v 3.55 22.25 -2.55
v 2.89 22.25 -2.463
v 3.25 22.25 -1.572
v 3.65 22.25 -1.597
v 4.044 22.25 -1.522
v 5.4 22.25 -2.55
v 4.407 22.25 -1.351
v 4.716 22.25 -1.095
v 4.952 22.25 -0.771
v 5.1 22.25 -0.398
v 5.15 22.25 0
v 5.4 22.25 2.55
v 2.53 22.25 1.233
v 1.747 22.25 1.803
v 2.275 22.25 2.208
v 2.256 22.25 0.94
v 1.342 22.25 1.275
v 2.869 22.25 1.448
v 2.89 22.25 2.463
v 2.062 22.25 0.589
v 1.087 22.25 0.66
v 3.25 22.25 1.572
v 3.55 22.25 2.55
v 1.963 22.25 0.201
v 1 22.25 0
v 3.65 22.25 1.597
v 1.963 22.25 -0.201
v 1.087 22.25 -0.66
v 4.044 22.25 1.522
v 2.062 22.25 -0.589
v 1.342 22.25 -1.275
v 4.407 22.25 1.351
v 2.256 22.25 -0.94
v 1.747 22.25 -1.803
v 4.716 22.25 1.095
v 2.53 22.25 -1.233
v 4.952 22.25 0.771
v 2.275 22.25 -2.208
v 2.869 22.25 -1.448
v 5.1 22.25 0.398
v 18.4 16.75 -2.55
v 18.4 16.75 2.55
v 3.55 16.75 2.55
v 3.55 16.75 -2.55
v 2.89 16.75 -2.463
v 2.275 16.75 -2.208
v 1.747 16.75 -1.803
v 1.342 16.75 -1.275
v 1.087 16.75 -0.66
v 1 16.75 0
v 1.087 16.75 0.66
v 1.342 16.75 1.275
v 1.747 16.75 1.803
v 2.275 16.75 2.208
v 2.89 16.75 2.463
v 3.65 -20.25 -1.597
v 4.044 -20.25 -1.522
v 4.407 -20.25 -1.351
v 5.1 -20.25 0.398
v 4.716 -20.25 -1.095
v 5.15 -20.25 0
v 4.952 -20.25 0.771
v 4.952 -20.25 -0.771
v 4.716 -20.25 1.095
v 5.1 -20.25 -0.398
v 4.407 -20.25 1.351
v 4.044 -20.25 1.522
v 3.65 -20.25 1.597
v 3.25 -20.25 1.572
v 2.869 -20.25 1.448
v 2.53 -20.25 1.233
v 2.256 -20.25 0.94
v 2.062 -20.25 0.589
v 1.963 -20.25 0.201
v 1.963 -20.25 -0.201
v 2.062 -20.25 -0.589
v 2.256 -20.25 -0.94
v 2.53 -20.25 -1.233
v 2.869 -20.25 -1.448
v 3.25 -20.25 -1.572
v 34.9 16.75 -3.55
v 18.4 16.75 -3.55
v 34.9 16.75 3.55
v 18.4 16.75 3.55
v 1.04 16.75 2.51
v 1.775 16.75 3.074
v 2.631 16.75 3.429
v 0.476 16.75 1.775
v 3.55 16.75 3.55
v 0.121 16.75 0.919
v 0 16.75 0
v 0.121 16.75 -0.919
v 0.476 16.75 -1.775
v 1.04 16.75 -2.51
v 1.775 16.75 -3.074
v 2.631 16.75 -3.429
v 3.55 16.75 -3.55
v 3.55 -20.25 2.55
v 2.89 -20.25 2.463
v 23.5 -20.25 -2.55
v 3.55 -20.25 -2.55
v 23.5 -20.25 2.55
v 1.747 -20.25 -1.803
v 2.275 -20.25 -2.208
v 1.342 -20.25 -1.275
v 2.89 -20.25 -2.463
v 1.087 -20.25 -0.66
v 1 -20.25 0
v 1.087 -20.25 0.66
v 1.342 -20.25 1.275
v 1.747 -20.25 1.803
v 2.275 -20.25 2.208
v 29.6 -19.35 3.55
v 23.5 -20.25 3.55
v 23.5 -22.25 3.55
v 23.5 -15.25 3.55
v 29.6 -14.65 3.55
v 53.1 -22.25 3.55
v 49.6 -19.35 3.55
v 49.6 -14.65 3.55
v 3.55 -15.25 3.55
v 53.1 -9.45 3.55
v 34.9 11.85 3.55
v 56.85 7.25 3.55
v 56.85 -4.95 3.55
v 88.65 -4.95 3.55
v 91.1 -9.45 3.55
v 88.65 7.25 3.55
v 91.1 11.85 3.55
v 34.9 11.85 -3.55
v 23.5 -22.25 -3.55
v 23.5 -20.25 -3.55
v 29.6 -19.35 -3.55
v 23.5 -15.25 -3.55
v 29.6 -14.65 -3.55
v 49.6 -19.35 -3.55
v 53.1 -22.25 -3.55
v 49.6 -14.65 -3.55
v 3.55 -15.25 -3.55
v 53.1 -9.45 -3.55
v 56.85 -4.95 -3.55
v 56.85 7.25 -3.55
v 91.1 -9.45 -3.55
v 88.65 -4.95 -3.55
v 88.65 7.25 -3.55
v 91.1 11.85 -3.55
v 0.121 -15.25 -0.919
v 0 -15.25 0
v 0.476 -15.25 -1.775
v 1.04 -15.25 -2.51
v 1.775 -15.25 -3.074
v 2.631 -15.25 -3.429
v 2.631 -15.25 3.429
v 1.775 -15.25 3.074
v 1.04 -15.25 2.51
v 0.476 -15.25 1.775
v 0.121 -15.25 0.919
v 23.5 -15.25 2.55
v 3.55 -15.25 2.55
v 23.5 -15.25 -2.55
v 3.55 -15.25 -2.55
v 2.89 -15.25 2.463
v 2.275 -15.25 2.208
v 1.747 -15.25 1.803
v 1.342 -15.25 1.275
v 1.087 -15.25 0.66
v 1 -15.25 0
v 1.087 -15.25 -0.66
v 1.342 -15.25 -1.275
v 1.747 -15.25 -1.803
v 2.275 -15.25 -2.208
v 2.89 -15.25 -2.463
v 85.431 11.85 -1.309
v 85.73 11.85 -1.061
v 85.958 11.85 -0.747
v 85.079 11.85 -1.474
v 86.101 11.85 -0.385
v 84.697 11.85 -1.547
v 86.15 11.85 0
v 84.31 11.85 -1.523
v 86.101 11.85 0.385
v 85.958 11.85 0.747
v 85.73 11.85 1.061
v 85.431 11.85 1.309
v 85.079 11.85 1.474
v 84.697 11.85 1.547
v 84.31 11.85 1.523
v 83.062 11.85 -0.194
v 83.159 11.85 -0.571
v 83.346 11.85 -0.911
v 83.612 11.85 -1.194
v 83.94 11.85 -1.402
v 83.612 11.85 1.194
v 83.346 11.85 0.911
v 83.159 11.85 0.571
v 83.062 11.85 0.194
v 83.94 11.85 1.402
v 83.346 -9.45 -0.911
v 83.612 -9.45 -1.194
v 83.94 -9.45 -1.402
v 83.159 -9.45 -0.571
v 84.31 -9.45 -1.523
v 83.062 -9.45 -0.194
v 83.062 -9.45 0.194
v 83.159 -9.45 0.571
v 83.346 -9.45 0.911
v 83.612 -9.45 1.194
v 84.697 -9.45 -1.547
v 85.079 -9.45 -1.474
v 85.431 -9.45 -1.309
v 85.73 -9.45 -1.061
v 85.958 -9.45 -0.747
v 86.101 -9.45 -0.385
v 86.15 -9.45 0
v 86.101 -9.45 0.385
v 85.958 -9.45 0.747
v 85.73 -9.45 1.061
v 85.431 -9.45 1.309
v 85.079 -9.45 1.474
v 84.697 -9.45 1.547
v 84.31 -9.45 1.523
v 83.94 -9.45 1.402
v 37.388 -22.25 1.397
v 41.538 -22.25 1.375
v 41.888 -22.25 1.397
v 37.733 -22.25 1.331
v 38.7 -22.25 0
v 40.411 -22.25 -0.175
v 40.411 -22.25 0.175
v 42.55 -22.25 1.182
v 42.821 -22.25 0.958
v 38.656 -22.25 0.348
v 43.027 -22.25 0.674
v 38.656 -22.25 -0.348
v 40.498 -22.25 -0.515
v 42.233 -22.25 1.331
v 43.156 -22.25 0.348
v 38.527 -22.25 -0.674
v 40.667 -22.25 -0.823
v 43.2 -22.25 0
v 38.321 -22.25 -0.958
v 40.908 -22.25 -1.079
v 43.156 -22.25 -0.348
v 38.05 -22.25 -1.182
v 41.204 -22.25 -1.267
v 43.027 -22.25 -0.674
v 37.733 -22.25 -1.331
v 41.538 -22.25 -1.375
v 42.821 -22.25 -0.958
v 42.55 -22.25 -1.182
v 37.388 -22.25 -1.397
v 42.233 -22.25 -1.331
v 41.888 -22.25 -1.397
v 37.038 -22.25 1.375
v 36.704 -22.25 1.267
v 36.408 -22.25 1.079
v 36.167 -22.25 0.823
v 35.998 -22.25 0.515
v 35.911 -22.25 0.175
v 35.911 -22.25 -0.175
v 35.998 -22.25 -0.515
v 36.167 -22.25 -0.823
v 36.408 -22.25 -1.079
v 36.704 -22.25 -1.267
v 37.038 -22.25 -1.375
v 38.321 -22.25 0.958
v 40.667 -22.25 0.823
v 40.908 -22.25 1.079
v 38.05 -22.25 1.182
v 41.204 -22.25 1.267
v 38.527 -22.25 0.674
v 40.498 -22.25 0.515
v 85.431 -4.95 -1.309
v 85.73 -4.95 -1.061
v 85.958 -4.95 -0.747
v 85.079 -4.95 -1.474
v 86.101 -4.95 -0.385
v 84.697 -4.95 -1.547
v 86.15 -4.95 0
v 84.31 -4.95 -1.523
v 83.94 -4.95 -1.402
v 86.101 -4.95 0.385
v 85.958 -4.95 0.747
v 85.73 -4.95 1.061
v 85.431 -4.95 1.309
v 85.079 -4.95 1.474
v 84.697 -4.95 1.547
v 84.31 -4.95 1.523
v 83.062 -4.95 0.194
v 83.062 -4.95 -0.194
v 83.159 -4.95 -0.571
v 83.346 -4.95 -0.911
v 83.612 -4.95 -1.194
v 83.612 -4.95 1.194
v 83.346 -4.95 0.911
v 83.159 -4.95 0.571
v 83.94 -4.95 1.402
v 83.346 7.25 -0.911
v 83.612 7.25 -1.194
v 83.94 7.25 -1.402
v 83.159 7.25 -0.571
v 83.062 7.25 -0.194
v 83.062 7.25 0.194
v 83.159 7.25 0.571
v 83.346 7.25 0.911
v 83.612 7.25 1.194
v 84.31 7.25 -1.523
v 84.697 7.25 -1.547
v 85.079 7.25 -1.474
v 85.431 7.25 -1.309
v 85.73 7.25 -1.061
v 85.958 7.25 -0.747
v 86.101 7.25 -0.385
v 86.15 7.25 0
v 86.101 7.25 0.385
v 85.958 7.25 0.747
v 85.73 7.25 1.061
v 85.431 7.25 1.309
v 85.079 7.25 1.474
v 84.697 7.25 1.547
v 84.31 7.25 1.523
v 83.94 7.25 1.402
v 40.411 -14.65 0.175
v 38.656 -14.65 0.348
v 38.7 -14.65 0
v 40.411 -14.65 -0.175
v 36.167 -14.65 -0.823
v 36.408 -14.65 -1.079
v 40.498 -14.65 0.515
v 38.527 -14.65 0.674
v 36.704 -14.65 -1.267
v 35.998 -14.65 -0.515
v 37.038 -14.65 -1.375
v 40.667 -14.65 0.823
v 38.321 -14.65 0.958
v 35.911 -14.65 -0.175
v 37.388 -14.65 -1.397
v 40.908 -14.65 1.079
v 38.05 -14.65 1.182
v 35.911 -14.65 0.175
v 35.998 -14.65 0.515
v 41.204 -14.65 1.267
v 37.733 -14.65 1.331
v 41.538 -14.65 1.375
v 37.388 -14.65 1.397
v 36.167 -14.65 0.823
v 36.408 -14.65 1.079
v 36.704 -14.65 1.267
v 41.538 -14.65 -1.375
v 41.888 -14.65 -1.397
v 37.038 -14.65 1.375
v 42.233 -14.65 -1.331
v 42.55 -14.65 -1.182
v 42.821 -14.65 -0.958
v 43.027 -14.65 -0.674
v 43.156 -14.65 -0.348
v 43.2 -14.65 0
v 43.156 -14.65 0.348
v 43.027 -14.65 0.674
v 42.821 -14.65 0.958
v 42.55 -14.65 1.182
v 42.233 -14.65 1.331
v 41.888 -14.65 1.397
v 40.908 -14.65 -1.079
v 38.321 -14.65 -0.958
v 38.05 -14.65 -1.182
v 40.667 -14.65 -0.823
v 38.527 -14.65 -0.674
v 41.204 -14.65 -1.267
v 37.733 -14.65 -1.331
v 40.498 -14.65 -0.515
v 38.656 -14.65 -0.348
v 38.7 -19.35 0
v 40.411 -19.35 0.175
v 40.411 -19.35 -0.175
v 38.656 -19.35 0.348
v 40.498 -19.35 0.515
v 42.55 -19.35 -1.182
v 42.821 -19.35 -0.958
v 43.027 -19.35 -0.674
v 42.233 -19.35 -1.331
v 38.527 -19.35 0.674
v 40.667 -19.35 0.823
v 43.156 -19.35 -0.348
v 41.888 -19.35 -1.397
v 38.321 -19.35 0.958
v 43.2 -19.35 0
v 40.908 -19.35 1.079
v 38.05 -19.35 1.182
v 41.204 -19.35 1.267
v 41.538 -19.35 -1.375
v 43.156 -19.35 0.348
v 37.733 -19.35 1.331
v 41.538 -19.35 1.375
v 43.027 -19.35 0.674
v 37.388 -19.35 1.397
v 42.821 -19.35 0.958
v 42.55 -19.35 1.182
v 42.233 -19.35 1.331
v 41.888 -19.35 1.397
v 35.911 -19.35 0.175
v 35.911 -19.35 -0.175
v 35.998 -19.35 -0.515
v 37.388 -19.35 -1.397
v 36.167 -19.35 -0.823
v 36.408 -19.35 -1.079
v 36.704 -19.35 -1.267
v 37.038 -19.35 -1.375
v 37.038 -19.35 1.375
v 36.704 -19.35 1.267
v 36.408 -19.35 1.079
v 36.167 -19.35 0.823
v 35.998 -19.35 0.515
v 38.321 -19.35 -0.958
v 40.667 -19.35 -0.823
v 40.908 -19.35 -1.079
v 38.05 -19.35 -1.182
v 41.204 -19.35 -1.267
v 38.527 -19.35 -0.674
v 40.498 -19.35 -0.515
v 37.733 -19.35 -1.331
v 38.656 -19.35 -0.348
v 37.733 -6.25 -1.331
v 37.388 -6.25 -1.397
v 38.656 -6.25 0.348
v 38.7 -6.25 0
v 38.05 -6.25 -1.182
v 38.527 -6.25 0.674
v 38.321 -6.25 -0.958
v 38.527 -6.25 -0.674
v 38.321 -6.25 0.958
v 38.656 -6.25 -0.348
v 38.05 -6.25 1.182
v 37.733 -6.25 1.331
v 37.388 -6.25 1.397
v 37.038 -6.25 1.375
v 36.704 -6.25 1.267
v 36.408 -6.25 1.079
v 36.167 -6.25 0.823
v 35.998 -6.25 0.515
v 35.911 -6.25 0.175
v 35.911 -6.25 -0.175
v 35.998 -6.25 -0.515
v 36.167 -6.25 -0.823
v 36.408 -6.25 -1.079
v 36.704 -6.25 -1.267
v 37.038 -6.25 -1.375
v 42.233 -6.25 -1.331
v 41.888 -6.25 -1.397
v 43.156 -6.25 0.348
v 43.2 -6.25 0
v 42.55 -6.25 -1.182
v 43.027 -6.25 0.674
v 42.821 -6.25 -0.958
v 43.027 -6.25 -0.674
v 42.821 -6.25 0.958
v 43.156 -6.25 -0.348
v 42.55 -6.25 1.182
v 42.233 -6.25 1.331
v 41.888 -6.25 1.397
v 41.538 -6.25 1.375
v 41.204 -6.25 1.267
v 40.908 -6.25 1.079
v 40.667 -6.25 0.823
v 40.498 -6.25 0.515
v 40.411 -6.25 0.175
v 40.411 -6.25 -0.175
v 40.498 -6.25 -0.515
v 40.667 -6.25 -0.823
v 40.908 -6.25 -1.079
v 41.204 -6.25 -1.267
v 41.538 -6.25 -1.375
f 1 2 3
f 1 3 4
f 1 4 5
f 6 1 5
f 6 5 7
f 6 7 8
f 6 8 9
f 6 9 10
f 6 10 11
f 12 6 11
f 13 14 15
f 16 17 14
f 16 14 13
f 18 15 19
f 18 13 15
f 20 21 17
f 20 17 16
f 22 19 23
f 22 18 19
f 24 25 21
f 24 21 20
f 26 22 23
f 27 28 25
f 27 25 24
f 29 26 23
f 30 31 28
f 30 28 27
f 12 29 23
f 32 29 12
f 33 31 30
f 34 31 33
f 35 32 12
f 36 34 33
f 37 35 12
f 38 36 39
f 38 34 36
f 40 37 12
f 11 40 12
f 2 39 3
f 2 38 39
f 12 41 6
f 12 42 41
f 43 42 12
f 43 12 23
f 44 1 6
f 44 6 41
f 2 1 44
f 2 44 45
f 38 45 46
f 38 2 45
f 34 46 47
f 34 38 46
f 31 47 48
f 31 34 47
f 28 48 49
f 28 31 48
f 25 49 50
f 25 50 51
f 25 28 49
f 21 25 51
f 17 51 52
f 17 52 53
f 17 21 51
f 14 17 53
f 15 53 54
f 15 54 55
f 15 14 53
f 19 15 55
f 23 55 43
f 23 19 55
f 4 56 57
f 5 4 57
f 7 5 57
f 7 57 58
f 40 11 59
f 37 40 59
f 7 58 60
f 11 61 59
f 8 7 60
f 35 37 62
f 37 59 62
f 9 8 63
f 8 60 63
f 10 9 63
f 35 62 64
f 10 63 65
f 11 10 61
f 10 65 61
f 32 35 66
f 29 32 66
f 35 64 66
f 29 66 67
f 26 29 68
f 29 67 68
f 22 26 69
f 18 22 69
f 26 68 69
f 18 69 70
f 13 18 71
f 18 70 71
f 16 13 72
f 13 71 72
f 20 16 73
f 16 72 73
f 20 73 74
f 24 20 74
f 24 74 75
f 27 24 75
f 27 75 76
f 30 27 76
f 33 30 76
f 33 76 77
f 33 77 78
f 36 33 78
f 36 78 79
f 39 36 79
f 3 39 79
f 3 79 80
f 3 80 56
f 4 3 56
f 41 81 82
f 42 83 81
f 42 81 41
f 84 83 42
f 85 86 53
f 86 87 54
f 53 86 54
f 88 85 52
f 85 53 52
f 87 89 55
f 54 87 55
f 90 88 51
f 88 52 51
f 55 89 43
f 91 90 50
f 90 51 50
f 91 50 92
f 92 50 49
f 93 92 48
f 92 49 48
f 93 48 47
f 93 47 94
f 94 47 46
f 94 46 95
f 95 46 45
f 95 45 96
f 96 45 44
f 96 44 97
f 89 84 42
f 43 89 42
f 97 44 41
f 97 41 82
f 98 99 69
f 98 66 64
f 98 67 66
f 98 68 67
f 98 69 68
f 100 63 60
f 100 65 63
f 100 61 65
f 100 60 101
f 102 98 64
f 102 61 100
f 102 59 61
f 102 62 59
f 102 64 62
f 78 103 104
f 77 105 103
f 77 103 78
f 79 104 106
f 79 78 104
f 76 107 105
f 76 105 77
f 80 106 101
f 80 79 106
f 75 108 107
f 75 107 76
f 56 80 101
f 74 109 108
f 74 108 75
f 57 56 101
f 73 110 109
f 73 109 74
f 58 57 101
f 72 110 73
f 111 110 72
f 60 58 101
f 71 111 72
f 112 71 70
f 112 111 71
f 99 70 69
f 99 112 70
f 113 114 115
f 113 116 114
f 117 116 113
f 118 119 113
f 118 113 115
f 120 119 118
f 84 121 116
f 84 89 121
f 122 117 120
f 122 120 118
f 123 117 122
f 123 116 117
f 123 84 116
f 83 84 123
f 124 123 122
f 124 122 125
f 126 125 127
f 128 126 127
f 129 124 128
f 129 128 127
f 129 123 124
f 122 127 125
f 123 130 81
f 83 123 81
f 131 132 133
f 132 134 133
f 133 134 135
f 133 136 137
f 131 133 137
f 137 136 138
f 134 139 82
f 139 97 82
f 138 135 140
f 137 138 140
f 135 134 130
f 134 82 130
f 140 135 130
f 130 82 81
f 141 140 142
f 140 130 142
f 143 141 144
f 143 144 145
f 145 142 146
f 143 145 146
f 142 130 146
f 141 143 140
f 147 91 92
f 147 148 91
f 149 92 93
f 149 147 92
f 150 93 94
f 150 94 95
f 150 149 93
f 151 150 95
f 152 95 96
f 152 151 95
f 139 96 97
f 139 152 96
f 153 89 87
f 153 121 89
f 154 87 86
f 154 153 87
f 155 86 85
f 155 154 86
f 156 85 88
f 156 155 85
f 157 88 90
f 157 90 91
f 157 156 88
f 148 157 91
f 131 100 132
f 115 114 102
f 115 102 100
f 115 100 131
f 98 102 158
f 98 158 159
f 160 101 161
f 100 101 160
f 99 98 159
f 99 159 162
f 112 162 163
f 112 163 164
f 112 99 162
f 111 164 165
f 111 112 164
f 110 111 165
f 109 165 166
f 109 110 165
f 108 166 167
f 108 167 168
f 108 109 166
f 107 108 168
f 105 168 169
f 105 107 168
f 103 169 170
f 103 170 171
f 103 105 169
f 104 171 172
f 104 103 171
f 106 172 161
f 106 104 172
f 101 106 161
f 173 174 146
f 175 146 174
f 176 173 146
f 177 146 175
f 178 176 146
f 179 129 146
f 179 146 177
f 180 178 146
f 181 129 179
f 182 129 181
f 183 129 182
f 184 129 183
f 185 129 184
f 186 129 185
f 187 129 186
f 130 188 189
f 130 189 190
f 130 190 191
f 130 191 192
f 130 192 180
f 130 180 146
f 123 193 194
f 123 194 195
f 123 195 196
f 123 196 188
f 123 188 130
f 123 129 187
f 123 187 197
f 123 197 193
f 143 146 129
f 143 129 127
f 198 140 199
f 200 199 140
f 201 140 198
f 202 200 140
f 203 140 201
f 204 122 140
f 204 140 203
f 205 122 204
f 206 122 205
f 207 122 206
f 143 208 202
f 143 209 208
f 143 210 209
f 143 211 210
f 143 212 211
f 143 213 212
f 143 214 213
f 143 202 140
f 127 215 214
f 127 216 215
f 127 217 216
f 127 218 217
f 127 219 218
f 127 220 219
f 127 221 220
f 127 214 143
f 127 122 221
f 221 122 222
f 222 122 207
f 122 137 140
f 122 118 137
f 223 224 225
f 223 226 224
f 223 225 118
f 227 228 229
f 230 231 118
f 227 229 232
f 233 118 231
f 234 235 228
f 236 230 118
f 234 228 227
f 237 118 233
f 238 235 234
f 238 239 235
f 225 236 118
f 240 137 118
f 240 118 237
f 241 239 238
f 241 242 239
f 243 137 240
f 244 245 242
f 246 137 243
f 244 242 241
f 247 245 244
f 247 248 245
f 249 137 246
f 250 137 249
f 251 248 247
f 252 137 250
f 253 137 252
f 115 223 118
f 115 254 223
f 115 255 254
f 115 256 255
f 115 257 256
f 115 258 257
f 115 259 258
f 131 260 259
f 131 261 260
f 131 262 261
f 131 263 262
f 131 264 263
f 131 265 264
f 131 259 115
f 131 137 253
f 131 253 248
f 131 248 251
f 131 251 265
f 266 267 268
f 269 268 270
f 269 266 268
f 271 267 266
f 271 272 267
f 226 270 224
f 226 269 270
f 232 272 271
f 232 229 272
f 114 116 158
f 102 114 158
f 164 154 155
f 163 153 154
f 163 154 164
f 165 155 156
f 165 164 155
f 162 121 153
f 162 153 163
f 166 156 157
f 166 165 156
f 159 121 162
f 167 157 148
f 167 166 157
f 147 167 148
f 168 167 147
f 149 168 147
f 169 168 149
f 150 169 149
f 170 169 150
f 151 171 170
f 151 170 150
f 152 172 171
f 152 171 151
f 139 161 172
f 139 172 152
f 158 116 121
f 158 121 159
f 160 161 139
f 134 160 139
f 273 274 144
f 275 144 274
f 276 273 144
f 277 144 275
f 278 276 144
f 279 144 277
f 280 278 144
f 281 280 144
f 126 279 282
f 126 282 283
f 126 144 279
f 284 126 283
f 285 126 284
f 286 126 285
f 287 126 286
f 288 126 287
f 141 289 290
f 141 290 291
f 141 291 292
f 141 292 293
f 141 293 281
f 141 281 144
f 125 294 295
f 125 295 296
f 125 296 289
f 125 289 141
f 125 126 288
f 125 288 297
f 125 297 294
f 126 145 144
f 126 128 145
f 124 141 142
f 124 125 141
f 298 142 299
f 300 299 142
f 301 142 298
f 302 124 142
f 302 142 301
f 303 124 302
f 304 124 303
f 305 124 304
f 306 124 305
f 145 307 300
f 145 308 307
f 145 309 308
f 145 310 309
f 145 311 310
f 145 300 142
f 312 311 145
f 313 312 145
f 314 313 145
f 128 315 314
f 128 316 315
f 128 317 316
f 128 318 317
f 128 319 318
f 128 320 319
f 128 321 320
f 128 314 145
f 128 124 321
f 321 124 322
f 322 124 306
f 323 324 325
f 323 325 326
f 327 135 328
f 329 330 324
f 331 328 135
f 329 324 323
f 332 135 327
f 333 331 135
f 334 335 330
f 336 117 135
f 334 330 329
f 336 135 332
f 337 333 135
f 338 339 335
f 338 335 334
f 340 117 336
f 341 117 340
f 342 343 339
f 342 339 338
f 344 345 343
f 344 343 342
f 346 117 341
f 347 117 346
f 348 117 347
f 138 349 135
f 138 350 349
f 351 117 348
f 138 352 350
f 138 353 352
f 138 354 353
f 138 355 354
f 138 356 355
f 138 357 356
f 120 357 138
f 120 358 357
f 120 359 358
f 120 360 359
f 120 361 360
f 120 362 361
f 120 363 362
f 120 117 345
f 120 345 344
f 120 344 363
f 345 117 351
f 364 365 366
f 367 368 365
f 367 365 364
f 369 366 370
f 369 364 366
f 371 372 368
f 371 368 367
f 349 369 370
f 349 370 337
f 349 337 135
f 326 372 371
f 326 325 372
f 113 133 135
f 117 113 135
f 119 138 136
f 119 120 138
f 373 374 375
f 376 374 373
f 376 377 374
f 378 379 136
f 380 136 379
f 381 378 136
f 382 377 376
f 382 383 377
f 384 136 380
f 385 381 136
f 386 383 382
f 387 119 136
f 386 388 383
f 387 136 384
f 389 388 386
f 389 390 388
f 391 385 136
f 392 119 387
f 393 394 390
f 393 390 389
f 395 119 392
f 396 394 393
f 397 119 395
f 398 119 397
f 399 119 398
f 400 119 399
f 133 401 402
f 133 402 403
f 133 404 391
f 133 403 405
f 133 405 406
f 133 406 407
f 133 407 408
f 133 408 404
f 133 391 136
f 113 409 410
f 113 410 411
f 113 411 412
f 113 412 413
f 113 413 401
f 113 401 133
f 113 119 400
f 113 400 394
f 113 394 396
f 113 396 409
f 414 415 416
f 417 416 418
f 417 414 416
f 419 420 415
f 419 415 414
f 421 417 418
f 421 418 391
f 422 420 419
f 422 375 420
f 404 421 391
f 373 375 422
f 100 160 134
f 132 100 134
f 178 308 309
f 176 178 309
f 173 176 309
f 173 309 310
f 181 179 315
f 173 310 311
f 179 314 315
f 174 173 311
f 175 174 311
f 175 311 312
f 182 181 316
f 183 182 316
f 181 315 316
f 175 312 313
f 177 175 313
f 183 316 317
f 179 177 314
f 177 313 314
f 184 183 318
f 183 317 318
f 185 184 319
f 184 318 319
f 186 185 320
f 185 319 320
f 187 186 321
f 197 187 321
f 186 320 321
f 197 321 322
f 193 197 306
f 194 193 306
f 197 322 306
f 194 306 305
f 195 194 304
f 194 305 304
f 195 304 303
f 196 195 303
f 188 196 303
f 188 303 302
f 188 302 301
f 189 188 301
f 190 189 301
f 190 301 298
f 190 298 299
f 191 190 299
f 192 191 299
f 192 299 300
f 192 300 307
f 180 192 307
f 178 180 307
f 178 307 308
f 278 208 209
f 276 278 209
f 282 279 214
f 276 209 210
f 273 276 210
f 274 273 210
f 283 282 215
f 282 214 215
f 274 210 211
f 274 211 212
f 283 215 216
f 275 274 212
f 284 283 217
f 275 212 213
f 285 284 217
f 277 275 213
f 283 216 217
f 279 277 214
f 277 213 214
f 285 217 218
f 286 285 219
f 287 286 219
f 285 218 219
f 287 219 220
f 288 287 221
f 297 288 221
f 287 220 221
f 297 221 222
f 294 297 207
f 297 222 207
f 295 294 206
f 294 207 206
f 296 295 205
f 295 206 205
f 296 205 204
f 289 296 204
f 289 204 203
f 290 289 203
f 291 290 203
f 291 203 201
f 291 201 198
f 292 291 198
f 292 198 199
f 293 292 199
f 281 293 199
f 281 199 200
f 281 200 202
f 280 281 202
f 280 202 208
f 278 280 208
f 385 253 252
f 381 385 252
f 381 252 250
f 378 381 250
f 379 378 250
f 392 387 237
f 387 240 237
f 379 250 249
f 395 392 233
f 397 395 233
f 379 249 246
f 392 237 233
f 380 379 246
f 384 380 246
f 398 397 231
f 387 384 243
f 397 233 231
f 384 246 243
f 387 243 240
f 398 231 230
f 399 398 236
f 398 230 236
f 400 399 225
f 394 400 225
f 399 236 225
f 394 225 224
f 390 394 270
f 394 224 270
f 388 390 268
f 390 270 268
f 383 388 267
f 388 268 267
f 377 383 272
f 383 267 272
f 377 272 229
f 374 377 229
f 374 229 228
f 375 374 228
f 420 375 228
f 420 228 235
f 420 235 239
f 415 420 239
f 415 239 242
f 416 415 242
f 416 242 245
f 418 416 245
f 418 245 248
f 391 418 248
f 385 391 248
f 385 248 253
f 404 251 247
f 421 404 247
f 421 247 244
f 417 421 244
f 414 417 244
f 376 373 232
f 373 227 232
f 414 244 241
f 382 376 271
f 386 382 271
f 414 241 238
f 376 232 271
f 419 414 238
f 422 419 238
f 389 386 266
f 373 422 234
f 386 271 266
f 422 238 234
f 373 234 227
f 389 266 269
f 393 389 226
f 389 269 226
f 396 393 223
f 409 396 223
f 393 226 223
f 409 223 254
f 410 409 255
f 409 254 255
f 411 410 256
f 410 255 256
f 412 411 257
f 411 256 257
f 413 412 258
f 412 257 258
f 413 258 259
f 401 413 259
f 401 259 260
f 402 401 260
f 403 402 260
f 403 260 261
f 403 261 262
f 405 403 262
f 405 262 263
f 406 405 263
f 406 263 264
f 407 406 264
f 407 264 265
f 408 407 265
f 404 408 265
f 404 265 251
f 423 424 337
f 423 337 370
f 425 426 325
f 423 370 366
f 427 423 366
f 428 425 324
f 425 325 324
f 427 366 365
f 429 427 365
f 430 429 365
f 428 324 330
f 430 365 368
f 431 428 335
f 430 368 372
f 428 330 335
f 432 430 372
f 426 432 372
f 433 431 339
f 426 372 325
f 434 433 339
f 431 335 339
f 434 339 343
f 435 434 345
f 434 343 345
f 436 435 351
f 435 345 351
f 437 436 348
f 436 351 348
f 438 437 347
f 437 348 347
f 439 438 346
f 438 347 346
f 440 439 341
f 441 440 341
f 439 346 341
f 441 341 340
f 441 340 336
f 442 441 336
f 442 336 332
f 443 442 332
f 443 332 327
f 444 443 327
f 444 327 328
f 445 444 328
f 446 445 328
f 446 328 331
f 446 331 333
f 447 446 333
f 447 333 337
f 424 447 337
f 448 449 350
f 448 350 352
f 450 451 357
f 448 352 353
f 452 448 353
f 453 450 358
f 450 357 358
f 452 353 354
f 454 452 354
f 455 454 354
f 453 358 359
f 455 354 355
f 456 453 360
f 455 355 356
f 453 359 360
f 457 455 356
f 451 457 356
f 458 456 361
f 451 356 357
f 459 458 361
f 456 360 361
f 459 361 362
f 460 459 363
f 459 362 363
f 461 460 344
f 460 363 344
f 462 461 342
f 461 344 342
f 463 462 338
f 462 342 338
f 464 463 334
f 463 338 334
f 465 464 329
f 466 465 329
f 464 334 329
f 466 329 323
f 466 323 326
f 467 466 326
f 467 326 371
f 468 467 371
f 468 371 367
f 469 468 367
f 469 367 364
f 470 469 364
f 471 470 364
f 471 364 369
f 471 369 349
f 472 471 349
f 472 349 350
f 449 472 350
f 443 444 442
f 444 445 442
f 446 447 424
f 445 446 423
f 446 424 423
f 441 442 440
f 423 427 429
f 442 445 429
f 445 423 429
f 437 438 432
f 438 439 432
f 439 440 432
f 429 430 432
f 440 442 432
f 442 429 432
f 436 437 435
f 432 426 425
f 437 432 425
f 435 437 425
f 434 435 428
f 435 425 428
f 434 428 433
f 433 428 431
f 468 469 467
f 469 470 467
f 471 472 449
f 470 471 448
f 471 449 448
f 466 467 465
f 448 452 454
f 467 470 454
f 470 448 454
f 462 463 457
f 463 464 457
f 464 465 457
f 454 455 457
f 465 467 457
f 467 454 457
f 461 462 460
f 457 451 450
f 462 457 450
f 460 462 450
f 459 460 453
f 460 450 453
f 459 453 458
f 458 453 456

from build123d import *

# Parameters (mm, degrees)
SKETCH_W        = 91.1
SKETCH_H        = 44.5
PAD_DEPTH       = 3.55
POCKET_DEPTH    = 7.101
SKETCH002_W     = 38
SKETCH002_H     = 12.8
POCKET001_DEPTH = 7.101
SKETCH003_W     = 23.5
SKETCH003_H     = 2
POCKET002_DEPTH = 7.101
SKETCH004_W     = 31.8
SKETCH004_H     = 12.2
POCKET003_DEPTH = 7.101
SKETCH005_W     = 20
SKETCH005_H     = 4.7
POCKET004_DEPTH = 7.101
POCKET005_DEPTH = 42.501
POCKET006_DEPTH = 5
POCKET007_DEPTH = 5.5
SKETCH009_R     = 1.6
POCKET008_DEPTH = 42.501
SKETCH010_R     = 1.55
POCKET009_DEPTH = 44.501
SKETCH011_R     = 1.4
POCKET010_DEPTH = 16


with BuildPart() as part:
    # Sketch → Pad (new body, symmetric)
    with BuildSketch(Plane.XY):
        with Locations((45.55, 0)):
            Rectangle(SKETCH_W, SKETCH_H)
    extrude(amount=PAD_DEPTH, both=True)

    # Sketch001 → Pocket (cut, through all)
    with BuildSketch(Plane.XY.offset(3.55)):
        Polygon((5.4, 22.25), (91.1, 22.25), (91.1, 11.85), (34.9, 11.85), (34.9, 16.75), (18.4, 16.75), align=None)
    extrude(amount=-POCKET_DEPTH, mode=Mode.SUBTRACT)

    # Sketch002 → Pocket001 (cut, through all)
    with BuildSketch(Plane.XY.offset(3.55)):
        with Locations((72.1, -15.85)):
            Rectangle(SKETCH002_W, SKETCH002_H)
    extrude(amount=-POCKET001_DEPTH, mode=Mode.SUBTRACT)

    # Sketch003 → Pocket002 (cut, through all)
    with BuildSketch(Plane.XY.offset(3.55)):
        with Locations((11.75, -21.25)):
            Rectangle(SKETCH003_W, SKETCH003_H)
    extrude(amount=-POCKET002_DEPTH, mode=Mode.SUBTRACT)

    # Sketch004 → Pocket003 (cut, through all)
    with BuildSketch(Plane.XY.offset(3.55)):
        with Locations((72.75, 1.15)):
            Rectangle(SKETCH004_W, SKETCH004_H)
    extrude(amount=-POCKET003_DEPTH, mode=Mode.SUBTRACT)

    # Sketch005 → Pocket004 (cut, through all)
    with BuildSketch(Plane.XY.offset(3.55)):
        with Locations((39.6, -17)):
            Rectangle(SKETCH005_W, SKETCH005_H)
    extrude(amount=-POCKET004_DEPTH, mode=Mode.SUBTRACT)

    # Sketch006 → Pocket005 (cut, through all)
    with BuildSketch(Plane.XZ.offset(20.25)):
        with BuildLine():
            Line((3.55, 3.55), (-1.45, 3.55))
            Line((-1.45, 3.55), (-1.45, -3.55))
            Line((-1.45, -3.55), (3.55, -3.55))
            ThreePointArc((3.55, 3.55), (0, 0), (3.55, -3.55))
        make_face()
    extrude(amount=-POCKET005_DEPTH, mode=Mode.SUBTRACT)

    # Sketch007 → Pocket006 (cut)
    with BuildSketch(Plane.XZ.offset(20.25)):
        with BuildLine():
            Line((0, 3.55), (23.5, 3.55))
            Line((23.5, 3.55), (23.5, 2.55))
            Line((23.5, 2.55), (3.55, 2.55))
            ThreePointArc((3.55, 2.55), (1, 0), (3.55, -2.55))
            Line((3.55, -2.55), (23.5, -2.55))
            Line((23.5, -2.55), (23.5, -3.55))
            Line((23.5, -3.55), (0, -3.55))
            Line((0, -3.55), (0, 3.55))
        make_face()
    extrude(amount=-POCKET006_DEPTH, mode=Mode.SUBTRACT)

    # Sketch008 → Pocket007 (cut)
    with BuildSketch(Plane(origin=(0, 22.25, 0), x_dir=(-1, 0, 0), z_dir=(0, 1, 0))):
        with BuildLine():
            Line((-18.4, 3.55), (0, 3.55))
            Line((0, 3.55), (0, -3.55))
            Line((0, -3.55), (-18.4, -3.55))
            Line((-18.4, -2.55), (-18.4, -3.55))
            Line((-3.55, -2.55), (-18.4, -2.55))
            ThreePointArc((-3.55, -2.55), (-1, 0), (-3.55, 2.55))
            Line((-18.4, 2.55), (-3.55, 2.55))
            Line((-18.4, 3.55), (-18.4, 2.55))
        make_face()
    extrude(amount=-POCKET007_DEPTH, mode=Mode.SUBTRACT)

    # Sketch009 → Pocket008 (cut, through all)
    with BuildSketch(Plane.XZ.offset(20.25)):
        with Locations((3.55, 0)):
            Circle(SKETCH009_R)
    extrude(amount=-POCKET008_DEPTH, mode=Mode.SUBTRACT)

    # Sketch010 → Pocket009 (cut, through all)
    with BuildSketch(Plane.XZ.offset(22.25)):
        with Locations((84.6, 0)):
            Circle(SKETCH010_R)
    extrude(amount=-POCKET009_DEPTH, mode=Mode.SUBTRACT)

    # Sketch011 → Pocket010 (cut)
    with BuildSketch(Plane.XZ.offset(22.25)):
        with Locations((41.8, 0)):
            Circle(SKETCH011_R)
        with Locations((37.3, 0)):
            Circle(SKETCH011_R)
    extrude(amount=-POCKET010_DEPTH, mode=Mode.SUBTRACT)


solid = part.part
